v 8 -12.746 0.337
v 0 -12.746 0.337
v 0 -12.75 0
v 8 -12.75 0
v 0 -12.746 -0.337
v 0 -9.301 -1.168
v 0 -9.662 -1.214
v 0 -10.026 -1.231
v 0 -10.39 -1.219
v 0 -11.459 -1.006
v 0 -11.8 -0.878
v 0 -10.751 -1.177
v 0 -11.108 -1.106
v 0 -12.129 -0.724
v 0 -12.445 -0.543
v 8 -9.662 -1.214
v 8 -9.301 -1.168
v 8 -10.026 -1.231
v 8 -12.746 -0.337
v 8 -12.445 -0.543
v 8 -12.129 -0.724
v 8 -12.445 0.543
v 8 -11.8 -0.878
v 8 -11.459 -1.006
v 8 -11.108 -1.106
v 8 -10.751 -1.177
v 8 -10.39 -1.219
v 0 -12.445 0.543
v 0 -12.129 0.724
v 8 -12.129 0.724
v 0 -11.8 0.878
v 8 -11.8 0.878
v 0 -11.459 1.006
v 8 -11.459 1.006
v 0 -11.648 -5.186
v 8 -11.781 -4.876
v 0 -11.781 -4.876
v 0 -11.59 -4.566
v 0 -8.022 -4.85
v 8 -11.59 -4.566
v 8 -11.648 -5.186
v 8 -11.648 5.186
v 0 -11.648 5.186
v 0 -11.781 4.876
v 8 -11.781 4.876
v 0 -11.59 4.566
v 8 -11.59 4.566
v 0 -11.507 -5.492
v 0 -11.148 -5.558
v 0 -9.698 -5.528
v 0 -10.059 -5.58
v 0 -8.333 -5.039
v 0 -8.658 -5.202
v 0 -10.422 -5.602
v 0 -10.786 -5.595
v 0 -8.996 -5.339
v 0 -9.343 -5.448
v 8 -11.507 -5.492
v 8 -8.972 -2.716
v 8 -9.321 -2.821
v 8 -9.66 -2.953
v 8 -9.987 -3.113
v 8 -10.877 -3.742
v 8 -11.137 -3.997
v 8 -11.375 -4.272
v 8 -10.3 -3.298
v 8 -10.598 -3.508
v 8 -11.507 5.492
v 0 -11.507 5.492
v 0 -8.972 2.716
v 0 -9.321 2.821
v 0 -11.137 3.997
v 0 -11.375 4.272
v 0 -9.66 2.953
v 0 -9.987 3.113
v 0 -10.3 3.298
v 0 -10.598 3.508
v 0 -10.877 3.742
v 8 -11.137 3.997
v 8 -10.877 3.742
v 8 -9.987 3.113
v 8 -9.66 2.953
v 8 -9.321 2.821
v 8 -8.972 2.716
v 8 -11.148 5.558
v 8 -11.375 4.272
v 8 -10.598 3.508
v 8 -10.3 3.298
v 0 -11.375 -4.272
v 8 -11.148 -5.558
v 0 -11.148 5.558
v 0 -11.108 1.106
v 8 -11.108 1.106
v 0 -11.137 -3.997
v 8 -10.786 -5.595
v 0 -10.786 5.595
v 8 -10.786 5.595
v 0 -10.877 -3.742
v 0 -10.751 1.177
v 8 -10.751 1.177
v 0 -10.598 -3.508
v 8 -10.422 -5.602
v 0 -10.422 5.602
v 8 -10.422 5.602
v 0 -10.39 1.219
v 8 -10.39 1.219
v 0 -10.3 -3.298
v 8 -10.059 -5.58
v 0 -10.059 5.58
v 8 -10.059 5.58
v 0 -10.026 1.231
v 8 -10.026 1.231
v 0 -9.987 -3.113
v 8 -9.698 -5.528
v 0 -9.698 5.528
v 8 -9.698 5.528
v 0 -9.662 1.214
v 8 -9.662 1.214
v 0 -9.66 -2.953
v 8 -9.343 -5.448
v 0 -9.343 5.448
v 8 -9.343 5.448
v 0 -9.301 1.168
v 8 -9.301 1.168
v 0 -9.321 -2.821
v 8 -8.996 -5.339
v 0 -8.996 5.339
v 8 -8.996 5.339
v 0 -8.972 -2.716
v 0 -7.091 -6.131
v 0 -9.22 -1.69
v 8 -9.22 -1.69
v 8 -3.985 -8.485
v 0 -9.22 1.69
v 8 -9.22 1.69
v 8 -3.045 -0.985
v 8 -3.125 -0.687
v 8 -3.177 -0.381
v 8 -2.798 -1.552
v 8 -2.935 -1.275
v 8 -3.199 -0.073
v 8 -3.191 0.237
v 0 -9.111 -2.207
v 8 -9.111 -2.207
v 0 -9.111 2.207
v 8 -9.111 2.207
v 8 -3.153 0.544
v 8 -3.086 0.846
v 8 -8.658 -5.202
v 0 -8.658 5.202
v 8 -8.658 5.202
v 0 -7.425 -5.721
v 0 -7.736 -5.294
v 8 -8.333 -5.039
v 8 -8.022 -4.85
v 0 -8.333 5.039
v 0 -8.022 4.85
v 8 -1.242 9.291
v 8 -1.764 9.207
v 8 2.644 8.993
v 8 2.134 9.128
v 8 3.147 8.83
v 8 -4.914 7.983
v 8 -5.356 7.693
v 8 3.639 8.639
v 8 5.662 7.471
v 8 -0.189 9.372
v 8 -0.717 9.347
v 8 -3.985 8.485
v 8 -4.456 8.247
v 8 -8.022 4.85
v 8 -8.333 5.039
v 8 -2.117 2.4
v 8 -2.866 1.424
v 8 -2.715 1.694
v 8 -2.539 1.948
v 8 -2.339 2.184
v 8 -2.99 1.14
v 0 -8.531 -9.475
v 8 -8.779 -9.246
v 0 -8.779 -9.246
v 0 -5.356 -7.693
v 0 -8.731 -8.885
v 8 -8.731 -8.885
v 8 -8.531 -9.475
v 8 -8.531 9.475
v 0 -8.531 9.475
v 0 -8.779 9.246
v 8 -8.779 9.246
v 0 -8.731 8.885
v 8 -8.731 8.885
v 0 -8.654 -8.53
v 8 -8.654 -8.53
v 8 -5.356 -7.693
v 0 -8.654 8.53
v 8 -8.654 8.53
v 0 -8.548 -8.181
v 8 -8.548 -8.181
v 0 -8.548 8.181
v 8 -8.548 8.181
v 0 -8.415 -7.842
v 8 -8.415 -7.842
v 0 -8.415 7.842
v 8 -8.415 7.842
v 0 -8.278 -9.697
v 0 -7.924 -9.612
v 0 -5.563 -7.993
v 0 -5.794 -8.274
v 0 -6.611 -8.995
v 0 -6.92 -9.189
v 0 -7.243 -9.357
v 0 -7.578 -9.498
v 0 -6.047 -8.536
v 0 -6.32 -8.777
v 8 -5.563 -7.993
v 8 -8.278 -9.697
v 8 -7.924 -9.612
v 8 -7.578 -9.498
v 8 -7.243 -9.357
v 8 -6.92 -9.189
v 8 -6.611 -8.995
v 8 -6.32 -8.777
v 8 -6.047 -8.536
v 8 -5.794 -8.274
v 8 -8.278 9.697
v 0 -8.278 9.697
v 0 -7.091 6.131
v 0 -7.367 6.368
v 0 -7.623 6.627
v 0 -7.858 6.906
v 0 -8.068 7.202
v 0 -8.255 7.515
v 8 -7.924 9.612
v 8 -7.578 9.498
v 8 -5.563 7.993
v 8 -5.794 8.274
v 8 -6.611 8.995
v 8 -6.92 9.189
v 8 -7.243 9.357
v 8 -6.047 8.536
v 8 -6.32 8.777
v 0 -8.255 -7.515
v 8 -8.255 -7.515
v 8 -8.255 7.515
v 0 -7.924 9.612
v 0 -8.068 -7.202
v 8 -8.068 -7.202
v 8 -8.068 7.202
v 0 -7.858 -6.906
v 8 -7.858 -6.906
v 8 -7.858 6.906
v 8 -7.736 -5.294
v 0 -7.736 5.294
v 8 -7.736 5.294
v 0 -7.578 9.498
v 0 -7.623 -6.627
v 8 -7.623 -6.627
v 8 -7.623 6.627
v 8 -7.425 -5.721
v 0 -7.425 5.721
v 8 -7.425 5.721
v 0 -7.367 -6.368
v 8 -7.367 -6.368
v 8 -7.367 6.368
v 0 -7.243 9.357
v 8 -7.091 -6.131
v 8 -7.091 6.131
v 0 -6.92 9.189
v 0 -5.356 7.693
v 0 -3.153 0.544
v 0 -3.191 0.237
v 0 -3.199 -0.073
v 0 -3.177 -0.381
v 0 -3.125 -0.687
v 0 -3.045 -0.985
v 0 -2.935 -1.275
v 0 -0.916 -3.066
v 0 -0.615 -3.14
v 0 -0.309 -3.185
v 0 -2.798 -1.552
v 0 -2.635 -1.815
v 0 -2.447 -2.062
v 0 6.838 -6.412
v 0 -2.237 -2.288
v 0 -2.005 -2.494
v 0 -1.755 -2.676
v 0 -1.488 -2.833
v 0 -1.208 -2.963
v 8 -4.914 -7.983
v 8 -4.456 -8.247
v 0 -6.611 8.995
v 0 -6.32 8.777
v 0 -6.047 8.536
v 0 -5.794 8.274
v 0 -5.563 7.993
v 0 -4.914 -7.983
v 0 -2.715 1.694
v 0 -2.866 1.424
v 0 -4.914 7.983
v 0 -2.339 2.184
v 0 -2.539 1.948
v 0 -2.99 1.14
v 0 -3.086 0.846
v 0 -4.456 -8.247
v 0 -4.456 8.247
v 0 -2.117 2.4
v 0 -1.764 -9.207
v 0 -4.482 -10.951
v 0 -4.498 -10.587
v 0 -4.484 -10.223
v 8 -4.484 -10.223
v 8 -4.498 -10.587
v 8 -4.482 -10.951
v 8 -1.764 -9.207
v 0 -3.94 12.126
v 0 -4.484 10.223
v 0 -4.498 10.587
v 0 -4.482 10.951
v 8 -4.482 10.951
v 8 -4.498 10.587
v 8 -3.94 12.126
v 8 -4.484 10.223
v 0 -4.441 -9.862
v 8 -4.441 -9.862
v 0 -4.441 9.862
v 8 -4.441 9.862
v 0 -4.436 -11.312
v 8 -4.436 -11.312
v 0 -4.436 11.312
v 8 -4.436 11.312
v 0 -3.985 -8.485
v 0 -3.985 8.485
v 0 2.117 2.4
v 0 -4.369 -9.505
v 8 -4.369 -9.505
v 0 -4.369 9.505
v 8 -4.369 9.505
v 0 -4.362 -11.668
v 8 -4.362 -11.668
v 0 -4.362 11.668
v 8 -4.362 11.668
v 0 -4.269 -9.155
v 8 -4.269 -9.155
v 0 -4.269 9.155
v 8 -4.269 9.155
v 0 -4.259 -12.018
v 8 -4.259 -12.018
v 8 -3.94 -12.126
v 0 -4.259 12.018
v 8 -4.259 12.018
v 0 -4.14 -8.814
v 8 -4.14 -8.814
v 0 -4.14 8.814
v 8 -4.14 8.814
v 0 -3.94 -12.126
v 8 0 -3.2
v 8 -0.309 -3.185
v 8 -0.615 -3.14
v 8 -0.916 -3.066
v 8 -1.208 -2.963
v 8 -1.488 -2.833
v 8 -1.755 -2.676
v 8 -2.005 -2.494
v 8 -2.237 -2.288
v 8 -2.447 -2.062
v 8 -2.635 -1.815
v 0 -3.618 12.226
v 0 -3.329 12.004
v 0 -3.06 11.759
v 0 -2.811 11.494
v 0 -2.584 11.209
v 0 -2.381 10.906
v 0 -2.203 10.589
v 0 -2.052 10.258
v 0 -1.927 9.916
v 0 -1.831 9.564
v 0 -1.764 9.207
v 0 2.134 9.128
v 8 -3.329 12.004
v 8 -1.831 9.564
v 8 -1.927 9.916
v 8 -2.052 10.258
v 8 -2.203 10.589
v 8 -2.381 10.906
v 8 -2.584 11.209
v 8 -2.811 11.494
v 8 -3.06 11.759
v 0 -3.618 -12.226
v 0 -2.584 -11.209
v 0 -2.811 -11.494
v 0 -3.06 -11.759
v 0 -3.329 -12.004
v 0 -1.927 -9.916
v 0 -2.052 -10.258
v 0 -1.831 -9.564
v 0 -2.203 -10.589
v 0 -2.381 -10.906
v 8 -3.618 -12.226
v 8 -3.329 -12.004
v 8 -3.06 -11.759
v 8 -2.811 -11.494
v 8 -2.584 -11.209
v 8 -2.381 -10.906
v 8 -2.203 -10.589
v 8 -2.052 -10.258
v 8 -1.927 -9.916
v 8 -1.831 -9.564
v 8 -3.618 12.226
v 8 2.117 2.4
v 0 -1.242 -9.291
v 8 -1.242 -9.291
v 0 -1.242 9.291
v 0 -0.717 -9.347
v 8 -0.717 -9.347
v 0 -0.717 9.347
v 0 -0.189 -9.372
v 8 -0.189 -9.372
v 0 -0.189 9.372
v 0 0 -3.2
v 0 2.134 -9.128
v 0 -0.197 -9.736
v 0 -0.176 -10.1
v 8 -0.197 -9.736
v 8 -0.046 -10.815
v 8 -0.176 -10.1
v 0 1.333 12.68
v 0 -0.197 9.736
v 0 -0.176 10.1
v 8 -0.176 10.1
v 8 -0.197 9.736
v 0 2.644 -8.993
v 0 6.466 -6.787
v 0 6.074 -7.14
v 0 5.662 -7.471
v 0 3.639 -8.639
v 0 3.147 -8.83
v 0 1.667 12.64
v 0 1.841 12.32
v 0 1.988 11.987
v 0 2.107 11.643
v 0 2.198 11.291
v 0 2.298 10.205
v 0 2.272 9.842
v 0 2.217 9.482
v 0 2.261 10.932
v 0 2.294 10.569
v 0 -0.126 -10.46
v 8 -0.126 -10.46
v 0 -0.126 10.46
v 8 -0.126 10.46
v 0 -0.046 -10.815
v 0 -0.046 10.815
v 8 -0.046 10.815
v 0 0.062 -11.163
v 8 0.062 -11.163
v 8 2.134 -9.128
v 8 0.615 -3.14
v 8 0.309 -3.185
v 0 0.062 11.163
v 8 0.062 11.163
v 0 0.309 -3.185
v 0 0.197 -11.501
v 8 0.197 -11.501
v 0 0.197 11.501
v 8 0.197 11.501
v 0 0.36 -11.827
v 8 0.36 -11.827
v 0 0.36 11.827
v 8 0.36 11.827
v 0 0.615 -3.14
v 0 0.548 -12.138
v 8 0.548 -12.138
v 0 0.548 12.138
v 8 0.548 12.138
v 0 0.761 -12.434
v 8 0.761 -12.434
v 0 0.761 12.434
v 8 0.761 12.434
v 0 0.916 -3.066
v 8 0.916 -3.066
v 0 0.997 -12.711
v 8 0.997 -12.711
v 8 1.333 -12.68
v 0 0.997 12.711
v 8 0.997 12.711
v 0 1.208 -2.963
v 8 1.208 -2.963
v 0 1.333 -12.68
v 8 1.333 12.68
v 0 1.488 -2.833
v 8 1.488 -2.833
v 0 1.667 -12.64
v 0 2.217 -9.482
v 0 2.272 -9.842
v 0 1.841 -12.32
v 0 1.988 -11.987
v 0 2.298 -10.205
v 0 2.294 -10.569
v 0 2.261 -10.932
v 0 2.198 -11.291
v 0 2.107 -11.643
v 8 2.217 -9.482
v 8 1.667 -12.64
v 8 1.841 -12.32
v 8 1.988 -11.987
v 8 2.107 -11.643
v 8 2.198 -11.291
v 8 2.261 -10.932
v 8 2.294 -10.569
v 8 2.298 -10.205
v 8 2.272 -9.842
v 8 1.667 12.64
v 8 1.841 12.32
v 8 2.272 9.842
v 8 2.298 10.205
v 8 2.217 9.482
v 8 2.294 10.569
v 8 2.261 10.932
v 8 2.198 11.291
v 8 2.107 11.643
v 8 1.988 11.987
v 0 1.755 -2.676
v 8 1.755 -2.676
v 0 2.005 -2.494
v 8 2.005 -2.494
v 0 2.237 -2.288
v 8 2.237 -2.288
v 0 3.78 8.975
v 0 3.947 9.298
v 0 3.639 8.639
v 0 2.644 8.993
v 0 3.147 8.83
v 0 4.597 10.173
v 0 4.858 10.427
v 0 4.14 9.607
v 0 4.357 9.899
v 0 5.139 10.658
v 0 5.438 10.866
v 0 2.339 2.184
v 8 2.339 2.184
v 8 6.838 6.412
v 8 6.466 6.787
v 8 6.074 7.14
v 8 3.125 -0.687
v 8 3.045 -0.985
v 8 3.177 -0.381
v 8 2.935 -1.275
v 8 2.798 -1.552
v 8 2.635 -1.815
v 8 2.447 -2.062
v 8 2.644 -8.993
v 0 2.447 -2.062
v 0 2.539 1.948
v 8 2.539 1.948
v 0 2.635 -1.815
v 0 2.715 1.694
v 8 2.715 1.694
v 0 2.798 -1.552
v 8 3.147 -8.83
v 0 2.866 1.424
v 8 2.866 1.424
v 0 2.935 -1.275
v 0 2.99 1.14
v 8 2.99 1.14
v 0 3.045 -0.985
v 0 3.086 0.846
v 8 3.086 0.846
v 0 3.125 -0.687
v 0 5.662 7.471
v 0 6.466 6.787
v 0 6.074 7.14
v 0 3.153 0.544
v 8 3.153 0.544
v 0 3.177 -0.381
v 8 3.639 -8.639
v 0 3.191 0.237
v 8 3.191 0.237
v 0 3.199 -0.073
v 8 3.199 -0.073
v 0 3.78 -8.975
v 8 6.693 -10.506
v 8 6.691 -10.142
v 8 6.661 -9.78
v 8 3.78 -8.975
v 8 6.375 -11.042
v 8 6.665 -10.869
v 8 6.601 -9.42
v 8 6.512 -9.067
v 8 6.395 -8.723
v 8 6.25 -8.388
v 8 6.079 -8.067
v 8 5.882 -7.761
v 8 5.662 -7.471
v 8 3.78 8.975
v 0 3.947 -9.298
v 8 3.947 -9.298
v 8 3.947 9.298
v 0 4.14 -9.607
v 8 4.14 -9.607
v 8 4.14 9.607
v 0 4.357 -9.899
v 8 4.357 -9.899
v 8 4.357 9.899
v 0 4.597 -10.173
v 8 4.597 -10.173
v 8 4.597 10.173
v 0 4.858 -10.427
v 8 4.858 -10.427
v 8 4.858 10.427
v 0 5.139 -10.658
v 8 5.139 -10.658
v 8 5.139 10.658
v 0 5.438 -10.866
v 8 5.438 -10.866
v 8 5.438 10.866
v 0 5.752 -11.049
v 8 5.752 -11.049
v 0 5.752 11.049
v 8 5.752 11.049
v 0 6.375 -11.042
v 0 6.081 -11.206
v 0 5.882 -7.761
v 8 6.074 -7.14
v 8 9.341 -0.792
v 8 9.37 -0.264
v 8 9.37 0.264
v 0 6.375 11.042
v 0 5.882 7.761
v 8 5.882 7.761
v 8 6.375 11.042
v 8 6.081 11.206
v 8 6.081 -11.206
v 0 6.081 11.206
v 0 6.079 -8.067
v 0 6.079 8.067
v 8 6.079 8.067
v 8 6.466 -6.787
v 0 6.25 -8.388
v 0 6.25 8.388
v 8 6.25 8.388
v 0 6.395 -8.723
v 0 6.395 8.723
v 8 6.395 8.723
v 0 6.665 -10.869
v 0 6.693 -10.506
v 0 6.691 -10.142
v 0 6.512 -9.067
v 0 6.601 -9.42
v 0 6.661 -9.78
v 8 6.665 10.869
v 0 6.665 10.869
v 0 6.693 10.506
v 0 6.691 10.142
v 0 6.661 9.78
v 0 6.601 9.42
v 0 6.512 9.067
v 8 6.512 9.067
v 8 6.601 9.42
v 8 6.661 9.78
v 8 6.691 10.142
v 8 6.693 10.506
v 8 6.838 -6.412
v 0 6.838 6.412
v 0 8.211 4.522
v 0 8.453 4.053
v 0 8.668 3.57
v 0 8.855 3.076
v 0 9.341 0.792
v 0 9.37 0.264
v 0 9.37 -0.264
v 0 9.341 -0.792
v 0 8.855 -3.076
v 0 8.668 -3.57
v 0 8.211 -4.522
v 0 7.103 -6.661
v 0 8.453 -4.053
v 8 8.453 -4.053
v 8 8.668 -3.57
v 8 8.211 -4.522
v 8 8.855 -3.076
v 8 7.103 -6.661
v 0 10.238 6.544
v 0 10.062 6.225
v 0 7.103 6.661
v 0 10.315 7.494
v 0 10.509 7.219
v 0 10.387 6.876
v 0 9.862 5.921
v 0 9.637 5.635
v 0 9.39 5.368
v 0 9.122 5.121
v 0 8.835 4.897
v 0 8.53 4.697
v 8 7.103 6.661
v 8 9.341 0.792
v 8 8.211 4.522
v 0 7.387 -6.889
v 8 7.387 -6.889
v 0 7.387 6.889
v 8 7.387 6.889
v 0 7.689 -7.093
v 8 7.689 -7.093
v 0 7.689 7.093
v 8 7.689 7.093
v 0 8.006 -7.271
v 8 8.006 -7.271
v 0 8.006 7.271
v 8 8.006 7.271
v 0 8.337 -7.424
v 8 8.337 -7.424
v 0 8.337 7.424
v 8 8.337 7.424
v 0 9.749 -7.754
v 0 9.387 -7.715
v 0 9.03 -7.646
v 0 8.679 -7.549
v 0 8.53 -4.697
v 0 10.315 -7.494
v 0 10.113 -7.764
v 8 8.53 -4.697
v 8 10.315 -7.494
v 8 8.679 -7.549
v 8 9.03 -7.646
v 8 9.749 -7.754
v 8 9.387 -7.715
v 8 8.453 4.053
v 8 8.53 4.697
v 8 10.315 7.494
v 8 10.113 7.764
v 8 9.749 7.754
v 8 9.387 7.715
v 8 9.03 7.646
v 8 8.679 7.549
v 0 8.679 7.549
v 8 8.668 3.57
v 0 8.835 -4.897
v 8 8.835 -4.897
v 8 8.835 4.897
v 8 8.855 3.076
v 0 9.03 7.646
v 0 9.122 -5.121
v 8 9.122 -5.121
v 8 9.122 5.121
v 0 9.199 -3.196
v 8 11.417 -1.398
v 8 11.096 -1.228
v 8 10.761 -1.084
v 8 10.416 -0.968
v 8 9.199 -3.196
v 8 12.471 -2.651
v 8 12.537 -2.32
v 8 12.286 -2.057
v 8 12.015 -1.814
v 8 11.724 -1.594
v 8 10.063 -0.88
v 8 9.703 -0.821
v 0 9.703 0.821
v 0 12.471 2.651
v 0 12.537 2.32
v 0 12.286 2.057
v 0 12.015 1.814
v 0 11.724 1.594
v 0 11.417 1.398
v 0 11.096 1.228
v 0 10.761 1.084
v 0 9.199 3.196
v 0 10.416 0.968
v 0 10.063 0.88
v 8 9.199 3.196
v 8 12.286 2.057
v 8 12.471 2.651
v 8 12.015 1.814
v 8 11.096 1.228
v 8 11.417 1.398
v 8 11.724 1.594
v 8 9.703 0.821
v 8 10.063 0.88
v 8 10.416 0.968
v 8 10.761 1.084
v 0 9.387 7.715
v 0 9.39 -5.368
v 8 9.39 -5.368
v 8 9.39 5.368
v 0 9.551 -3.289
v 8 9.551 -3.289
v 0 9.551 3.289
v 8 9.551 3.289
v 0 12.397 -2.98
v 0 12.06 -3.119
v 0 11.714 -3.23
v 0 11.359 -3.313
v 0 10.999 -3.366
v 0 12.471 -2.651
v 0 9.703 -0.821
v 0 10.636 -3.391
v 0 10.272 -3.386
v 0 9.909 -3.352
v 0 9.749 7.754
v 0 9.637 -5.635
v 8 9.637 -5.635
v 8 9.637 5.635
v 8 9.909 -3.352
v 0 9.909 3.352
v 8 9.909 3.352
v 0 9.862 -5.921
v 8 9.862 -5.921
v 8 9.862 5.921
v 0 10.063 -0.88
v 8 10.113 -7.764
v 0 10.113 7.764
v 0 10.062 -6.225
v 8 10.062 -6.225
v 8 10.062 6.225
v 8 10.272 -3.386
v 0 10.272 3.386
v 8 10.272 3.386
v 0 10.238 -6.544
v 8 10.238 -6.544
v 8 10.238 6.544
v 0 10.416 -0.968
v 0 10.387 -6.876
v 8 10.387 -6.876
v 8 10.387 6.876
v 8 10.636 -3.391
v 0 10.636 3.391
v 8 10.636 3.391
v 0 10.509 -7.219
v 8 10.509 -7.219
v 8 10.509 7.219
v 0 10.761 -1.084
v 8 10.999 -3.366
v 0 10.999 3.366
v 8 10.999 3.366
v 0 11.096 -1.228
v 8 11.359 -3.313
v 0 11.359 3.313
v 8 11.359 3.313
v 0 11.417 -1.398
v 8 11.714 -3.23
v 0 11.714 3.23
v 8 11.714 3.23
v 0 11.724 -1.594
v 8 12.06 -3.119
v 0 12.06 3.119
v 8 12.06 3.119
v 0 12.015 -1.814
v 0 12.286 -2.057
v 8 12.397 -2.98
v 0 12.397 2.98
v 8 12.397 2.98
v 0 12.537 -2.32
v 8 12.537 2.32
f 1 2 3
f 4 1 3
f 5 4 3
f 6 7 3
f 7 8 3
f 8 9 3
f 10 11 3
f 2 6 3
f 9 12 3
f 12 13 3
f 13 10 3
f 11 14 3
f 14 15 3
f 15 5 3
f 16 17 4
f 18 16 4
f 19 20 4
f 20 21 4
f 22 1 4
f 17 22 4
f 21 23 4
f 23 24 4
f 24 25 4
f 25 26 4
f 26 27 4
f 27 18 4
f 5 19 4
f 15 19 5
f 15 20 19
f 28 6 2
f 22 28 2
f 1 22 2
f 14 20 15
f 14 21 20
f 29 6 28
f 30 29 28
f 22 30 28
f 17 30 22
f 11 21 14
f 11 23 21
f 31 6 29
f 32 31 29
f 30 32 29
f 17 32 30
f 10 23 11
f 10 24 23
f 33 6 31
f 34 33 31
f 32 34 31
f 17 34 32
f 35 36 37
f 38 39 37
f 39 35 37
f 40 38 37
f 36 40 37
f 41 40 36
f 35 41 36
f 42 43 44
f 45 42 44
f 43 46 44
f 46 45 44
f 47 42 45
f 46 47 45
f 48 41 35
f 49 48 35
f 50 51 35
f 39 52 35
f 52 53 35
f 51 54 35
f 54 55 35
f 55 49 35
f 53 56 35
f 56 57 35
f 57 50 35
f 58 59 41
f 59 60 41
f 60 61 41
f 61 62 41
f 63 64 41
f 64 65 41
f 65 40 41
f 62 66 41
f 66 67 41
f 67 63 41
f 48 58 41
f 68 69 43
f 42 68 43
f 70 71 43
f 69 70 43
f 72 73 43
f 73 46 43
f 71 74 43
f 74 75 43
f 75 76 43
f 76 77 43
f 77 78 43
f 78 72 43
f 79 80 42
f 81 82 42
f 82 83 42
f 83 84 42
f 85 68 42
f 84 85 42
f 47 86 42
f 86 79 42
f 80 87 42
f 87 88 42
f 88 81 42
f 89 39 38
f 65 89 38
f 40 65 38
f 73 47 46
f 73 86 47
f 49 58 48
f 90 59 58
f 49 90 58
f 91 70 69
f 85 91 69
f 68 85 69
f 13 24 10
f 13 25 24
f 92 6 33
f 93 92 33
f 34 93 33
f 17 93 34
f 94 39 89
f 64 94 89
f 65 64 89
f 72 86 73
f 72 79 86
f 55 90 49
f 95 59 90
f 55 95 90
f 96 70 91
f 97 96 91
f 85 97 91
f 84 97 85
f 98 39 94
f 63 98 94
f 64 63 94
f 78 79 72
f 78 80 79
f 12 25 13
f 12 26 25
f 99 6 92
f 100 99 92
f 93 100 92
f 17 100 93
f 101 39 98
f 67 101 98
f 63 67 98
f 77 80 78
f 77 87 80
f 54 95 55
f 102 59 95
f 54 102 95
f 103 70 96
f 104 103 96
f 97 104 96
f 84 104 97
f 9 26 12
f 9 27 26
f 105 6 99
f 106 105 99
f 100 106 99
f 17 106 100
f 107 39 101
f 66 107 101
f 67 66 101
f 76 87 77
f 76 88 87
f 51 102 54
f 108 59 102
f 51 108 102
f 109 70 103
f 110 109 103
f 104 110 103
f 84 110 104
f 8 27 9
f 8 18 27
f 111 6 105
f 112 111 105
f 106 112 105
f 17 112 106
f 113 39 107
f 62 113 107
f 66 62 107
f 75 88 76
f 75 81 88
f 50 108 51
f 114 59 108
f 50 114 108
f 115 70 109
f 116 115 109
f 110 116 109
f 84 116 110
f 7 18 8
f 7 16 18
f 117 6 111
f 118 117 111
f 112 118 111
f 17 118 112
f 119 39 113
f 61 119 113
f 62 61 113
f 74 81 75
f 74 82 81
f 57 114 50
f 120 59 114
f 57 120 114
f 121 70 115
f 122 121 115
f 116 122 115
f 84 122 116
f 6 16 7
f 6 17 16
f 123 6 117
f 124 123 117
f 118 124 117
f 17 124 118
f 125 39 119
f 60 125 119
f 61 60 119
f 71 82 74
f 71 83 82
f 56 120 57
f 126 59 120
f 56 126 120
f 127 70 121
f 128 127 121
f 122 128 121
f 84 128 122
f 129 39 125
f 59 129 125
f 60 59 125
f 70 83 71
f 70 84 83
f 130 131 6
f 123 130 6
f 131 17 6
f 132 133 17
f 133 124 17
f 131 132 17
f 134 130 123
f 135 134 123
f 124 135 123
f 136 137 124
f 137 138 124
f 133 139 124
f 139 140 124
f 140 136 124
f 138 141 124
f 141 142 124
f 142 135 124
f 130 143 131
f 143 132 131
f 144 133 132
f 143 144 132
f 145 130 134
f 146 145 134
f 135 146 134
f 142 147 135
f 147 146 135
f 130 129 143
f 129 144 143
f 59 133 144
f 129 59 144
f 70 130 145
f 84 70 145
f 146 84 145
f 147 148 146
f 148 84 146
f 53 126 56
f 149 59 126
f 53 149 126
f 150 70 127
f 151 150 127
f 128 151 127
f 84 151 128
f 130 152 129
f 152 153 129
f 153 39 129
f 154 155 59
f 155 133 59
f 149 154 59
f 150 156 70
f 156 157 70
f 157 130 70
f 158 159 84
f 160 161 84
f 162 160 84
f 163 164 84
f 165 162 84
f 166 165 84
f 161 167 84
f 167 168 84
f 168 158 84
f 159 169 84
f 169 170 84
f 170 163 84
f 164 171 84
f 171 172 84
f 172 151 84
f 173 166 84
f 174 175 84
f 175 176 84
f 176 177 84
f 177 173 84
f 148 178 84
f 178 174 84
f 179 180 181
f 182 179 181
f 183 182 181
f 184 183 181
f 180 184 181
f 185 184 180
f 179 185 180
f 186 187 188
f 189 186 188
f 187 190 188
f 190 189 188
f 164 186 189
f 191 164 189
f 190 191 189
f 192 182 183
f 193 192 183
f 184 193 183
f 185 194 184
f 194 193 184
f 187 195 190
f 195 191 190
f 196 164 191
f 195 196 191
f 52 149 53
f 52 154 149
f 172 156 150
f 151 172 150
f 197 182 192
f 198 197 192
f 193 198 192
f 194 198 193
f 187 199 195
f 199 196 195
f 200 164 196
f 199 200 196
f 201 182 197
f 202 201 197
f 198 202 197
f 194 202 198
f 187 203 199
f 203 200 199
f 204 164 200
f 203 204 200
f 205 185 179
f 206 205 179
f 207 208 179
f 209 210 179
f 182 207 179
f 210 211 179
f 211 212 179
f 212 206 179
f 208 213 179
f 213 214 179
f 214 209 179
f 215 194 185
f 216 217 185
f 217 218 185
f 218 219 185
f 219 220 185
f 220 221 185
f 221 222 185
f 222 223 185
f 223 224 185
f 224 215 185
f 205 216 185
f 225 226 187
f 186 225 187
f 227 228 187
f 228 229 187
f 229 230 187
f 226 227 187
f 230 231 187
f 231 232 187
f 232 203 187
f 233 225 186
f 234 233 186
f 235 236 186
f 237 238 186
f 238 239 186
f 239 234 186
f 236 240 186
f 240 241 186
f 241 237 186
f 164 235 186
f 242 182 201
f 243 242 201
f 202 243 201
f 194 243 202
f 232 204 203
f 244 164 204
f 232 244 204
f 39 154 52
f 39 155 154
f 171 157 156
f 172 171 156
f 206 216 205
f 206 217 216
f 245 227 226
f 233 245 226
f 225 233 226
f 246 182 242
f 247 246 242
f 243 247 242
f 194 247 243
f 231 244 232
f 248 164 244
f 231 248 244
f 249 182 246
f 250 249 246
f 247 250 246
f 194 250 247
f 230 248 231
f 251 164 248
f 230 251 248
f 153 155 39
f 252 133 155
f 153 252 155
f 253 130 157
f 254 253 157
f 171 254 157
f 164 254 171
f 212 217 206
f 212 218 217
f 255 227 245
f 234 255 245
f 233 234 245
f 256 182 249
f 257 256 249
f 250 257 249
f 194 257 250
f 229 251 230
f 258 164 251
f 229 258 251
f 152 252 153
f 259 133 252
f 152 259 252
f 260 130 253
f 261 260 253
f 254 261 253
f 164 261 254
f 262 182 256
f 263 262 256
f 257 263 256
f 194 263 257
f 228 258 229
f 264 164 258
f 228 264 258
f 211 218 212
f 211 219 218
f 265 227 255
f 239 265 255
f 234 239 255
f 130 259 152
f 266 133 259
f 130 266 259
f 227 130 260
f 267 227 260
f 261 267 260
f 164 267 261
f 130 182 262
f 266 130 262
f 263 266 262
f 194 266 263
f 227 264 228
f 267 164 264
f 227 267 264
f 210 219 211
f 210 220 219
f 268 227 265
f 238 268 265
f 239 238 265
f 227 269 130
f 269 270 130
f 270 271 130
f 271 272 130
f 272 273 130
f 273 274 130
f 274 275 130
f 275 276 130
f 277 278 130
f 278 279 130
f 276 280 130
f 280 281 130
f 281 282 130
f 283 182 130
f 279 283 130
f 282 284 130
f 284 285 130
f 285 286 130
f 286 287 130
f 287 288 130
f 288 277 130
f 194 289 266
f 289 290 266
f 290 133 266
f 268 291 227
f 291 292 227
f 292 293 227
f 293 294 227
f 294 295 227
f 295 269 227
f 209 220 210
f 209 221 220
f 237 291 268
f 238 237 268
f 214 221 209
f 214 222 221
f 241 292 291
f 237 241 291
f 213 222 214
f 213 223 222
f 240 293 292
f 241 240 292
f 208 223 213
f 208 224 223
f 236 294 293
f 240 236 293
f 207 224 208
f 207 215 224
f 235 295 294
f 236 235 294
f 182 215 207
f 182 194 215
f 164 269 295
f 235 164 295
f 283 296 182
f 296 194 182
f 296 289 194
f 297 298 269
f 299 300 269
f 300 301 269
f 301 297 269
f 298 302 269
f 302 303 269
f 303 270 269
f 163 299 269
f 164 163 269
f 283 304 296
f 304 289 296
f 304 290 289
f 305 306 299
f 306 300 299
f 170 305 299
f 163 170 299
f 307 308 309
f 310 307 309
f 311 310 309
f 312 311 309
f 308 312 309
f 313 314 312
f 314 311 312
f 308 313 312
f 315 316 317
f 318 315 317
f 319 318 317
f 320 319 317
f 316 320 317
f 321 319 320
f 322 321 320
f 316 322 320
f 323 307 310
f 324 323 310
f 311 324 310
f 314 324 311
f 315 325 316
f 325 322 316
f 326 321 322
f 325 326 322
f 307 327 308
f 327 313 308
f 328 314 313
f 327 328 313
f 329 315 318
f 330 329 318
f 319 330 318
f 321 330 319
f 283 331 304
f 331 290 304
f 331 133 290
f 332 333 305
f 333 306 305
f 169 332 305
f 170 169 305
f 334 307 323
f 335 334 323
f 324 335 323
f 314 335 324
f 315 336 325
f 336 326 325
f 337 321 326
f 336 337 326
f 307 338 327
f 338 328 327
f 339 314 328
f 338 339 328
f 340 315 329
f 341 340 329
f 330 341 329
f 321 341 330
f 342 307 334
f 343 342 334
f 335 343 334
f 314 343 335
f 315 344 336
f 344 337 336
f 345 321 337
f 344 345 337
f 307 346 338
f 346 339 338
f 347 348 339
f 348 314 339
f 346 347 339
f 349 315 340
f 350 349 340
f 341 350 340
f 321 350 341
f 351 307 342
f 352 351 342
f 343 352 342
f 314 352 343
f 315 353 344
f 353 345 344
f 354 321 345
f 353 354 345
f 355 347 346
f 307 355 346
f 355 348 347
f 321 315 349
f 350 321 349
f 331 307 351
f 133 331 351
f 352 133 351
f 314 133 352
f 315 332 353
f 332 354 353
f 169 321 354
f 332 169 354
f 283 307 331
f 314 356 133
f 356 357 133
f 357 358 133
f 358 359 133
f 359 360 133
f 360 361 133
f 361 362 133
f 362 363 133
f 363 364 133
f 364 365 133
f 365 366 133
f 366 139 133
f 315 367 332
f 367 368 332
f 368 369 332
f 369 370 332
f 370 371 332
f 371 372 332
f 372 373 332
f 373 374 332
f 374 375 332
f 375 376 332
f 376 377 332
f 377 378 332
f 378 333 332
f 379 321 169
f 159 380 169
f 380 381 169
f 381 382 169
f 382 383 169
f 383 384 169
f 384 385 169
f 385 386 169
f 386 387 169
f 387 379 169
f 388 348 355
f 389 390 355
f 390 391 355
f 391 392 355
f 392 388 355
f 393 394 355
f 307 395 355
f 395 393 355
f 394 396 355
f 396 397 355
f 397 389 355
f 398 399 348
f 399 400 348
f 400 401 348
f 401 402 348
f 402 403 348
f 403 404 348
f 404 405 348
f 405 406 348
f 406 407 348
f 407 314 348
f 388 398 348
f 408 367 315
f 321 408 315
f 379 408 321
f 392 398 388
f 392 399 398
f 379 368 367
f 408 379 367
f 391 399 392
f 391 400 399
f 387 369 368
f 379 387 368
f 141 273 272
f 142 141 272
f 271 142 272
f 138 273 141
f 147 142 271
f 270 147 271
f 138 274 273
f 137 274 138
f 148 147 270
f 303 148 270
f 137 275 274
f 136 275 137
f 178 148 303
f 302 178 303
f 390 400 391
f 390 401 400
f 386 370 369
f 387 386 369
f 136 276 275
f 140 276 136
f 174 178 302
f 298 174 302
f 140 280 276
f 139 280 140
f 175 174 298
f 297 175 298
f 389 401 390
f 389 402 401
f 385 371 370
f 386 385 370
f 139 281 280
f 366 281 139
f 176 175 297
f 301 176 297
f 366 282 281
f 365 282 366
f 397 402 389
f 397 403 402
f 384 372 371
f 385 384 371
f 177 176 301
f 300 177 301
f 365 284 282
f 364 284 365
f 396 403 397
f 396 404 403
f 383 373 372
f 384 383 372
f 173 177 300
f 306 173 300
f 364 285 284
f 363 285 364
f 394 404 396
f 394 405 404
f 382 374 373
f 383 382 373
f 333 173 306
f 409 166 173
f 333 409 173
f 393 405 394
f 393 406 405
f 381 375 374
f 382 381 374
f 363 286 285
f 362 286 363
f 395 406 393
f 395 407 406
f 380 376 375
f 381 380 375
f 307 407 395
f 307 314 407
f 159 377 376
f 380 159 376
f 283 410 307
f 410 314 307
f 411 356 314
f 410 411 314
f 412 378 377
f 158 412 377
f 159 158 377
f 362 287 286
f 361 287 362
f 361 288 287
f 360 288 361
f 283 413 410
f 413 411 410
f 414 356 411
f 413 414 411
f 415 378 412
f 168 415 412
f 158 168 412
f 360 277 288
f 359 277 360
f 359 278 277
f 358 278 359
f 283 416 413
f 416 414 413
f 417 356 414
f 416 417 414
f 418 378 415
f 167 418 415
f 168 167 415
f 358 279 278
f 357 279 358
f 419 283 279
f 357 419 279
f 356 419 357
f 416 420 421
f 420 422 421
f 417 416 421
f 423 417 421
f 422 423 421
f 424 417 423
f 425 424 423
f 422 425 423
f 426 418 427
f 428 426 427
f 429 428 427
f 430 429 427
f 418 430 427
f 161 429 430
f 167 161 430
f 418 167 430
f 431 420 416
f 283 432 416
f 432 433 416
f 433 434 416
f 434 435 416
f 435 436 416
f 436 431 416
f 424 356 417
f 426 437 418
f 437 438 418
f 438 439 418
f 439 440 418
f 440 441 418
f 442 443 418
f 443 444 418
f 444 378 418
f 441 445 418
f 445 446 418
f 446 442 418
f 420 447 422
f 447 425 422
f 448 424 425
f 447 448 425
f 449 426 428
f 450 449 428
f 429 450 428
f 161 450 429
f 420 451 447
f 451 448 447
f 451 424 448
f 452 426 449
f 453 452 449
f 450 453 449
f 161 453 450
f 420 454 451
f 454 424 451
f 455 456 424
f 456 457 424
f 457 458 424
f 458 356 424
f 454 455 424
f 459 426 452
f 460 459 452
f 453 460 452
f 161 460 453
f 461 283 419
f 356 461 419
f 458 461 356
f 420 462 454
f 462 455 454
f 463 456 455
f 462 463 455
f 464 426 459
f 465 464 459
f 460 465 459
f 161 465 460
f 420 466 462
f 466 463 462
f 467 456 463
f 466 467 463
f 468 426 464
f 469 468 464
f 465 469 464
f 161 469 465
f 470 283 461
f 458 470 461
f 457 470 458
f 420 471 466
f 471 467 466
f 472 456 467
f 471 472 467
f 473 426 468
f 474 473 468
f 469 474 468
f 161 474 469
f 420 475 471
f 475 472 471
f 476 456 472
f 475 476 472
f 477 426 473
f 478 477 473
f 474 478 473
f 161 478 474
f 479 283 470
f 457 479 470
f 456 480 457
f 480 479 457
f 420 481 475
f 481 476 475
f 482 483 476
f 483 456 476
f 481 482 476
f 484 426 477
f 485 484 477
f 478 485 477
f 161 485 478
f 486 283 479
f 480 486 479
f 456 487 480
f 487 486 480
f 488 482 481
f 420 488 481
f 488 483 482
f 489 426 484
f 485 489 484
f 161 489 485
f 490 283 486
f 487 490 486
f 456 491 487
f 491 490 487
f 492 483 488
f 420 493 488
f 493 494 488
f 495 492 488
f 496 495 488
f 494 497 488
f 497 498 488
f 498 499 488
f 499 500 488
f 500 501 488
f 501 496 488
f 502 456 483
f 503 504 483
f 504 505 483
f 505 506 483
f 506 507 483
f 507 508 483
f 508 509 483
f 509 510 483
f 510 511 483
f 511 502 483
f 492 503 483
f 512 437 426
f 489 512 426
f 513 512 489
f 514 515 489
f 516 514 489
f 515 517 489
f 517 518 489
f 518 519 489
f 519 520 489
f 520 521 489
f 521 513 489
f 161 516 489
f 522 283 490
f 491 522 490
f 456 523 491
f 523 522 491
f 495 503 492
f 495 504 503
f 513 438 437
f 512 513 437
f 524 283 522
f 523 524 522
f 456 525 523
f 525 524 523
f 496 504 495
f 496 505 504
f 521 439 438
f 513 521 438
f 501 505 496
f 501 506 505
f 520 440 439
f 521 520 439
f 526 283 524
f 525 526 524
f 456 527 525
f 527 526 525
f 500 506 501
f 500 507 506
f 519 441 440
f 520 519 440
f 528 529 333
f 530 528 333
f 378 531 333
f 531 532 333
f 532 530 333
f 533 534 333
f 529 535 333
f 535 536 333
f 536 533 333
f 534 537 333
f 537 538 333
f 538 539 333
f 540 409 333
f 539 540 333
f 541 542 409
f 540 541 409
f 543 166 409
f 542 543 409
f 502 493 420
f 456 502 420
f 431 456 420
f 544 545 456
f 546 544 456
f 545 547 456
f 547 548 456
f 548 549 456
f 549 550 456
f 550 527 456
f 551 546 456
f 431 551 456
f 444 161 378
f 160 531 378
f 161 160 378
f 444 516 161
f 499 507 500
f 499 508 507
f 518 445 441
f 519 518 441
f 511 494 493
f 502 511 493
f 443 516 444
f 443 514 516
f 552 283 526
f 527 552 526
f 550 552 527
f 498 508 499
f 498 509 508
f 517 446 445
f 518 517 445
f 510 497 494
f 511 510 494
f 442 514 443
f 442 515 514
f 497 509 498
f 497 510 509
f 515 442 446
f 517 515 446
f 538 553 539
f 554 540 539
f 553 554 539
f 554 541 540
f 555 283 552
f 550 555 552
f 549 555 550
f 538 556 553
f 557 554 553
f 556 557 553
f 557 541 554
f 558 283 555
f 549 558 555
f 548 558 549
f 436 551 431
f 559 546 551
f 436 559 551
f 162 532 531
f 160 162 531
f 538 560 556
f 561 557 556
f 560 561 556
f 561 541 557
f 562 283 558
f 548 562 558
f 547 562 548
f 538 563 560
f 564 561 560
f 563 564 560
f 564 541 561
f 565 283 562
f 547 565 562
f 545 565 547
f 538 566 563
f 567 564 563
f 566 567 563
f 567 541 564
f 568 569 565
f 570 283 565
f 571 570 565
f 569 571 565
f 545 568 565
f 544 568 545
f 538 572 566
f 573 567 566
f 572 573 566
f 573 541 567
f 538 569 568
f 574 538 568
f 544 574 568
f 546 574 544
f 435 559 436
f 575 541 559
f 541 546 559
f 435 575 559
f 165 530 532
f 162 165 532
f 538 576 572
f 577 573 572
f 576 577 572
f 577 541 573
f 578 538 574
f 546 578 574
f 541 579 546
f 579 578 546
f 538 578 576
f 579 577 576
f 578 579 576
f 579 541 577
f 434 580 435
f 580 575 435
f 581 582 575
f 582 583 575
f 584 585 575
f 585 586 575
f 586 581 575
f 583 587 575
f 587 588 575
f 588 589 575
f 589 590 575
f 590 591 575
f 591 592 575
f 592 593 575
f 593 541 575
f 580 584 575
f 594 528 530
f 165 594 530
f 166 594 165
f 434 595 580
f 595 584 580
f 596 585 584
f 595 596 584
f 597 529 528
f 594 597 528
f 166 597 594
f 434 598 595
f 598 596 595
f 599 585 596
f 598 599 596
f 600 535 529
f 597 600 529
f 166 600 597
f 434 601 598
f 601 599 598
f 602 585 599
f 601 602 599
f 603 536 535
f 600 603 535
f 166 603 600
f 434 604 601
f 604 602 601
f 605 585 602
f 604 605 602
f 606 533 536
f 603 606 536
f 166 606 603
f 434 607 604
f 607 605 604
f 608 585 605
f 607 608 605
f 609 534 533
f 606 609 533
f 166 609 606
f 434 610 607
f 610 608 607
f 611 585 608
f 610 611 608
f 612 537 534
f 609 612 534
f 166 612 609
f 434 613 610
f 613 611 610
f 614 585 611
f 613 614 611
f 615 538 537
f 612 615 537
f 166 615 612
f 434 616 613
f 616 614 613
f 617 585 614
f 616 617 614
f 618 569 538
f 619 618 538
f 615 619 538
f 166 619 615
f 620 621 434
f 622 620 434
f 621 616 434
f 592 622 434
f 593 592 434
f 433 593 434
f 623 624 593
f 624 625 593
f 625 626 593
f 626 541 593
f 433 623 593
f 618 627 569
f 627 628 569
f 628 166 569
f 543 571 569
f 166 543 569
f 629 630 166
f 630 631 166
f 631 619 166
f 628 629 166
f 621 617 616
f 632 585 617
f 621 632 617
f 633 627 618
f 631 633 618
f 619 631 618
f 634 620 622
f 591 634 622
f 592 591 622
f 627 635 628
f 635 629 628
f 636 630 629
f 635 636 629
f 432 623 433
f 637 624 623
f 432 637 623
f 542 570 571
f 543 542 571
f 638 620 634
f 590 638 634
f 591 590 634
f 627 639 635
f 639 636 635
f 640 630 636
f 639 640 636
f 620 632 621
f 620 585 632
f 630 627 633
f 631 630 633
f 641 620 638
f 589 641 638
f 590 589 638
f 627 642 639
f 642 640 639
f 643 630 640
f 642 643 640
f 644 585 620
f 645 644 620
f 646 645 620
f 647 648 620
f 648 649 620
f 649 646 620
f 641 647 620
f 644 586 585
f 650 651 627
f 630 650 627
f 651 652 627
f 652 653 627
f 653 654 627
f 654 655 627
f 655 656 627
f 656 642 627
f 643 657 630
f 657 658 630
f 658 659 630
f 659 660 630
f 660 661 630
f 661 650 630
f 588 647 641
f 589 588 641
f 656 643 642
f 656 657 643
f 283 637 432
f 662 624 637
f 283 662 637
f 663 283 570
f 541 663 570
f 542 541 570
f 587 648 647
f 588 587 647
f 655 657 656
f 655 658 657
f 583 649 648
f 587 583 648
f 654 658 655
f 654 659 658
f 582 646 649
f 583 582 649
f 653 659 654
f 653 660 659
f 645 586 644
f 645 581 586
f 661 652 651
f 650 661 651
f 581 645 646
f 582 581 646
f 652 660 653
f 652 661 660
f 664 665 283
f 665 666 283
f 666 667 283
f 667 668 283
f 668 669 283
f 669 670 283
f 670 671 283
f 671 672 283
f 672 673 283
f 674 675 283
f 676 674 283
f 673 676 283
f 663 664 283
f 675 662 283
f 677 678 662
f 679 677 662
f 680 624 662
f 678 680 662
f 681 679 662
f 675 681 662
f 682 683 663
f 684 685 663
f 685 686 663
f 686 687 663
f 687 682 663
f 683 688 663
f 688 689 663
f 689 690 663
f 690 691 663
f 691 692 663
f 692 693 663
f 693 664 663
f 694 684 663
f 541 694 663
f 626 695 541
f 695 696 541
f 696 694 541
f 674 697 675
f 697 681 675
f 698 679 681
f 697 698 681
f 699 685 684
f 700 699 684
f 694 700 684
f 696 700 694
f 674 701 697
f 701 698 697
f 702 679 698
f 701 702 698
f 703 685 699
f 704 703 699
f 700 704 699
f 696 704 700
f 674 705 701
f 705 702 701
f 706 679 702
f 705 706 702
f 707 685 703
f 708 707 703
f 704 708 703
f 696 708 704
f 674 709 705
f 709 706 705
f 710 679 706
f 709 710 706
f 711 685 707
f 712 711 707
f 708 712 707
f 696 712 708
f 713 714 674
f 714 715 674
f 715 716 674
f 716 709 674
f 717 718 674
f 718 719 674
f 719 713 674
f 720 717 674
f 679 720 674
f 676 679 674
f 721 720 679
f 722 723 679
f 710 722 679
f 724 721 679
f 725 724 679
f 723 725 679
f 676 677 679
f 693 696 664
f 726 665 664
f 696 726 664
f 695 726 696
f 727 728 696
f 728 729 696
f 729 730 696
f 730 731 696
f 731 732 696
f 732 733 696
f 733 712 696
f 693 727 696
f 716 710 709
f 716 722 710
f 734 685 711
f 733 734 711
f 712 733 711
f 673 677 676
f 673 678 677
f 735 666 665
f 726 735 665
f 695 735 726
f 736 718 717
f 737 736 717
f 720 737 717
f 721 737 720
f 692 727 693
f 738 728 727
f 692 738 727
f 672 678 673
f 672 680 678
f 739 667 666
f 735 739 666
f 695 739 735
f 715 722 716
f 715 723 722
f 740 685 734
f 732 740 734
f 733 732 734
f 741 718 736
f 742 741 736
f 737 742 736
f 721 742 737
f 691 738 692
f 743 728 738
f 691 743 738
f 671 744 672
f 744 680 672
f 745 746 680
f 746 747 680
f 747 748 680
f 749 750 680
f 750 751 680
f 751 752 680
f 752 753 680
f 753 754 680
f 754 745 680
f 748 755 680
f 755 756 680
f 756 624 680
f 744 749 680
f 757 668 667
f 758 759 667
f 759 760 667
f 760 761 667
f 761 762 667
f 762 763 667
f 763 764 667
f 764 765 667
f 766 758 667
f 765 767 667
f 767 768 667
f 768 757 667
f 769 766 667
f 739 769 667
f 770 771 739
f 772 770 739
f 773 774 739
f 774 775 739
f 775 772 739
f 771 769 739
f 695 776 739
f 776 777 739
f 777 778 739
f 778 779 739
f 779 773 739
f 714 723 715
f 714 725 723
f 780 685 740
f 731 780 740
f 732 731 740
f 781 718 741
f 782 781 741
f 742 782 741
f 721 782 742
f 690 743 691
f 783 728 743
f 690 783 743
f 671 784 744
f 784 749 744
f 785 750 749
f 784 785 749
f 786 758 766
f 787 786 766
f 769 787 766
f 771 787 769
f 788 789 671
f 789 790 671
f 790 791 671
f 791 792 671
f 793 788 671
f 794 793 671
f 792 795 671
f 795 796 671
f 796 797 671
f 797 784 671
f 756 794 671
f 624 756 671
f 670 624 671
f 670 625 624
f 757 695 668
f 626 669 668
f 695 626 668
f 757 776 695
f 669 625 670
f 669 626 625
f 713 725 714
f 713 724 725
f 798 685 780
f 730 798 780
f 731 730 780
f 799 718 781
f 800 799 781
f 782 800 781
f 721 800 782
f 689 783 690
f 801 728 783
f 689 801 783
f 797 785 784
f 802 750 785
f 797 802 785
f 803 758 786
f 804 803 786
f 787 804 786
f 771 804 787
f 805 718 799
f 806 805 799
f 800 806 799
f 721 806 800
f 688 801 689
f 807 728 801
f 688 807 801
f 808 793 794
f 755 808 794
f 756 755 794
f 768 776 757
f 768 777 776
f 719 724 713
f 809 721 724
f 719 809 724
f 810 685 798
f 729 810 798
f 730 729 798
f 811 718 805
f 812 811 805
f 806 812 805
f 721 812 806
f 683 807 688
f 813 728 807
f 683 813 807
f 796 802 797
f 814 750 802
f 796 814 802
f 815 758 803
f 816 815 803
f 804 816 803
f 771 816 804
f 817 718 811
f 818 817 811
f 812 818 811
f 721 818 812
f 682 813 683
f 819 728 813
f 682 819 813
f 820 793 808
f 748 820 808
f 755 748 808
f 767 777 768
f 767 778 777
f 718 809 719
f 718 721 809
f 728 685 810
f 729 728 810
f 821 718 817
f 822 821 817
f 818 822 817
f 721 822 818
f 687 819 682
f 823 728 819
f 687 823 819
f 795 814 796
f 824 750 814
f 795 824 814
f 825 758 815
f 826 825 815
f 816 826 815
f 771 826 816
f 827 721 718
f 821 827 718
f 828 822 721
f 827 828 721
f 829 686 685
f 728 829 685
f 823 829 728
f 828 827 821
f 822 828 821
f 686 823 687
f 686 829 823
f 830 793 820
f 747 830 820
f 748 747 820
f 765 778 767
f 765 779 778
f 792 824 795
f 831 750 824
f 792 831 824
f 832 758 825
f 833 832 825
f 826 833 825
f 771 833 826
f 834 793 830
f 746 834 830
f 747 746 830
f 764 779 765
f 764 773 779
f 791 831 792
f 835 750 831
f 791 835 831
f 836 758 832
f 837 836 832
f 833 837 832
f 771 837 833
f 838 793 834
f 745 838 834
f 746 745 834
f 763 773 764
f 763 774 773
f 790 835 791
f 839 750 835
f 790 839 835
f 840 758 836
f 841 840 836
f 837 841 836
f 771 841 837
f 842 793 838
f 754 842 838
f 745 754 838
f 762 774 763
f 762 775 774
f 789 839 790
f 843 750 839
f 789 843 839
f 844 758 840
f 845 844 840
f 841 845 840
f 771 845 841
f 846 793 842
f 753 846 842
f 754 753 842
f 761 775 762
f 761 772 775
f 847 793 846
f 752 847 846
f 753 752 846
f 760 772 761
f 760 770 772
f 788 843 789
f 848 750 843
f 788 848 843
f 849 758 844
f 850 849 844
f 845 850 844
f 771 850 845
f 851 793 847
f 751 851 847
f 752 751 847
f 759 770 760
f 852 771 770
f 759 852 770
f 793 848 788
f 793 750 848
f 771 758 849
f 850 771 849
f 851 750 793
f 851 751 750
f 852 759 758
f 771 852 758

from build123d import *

# Parameters (mm, degrees)
BASPROSKE_W         = 8
BASPROSKE_H         = 12.75
TOOTHCUT_DEPTH      = 20.726251545
TEETHCUTS_COUNT     = 15
TEETHCUTS_ANGLE     = 336
BORSKE_R            = 3
BORE_DEPTH          = 50.0000508
SKETCH2_R           = 3.2
CUT_EXTRUDE1_DEPTH  = 20.701035813
BOSS_EXTRUDE1_DEPTH = 8


with BuildPart() as part:
    # BasProSke → Base-Revolve (revolve)
    with BuildSketch(Plane(origin=(0, 0, 0), x_dir=(1, 0, 0), z_dir=(0, 1, 0)), mode=Mode.PRIVATE) as base_revolve_sk:
        with Locations((4, 6.375)):
            Rectangle(BASPROSKE_W, BASPROSKE_H)
    revolve(base_revolve_sk.sketch.rotate(Axis((-10, 0, 0), (1, 0, 0)), 180), axis=Axis((-10, 0, 0), (1, 0, 0)))

    # TooCutSke → ToothCut (cut, through all)
    with BuildSketch(Plane(origin=(0, 0, 0), x_dir=(0, 0, -1), z_dir=(1, 0, 0))):
        with BuildLine():
            ThreePointArc((0.791546546, 9.340520867), (0, 9.374), (-0.791546546, 9.340520867))
            ThreePointArc((-0.791546546, 9.340520867), (-1.235070734, 11.110218102), (-2.344732916, 12.558386549))
            ThreePointArc((-2.344732916, 12.558386549), (0, 12.7754), (2.344732916, 12.558386549))
            ThreePointArc((2.344732916, 12.558386549), (1.235070734, 11.110218102), (0.791546546, 9.340520867))
        make_face()
    toothcut = extrude(amount=TOOTHCUT_DEPTH, mode=Mode.SUBTRACT)

    # TeethCuts: ToothCut ×15 about axis
    teethcuts_axis = Axis((-10, 0, 0), (1, 0, 0))
    for i in range(1, TEETHCUTS_COUNT):
        add(toothcut.rotate(teethcuts_axis, i * TEETHCUTS_ANGLE / (TEETHCUTS_COUNT - 1)), mode=Mode.SUBTRACT)

    # BorSke → Bore (cut, symmetric)
    with BuildSketch(Plane(origin=(0, 0, 0), x_dir=(0, 0, -1), z_dir=(1, 0, 0))):
        with Locations(Location((0, 0, 0), (0, 0, 180))):
            Circle(BORSKE_R)
    extrude(amount=BORE_DEPTH, both=True, mode=Mode.SUBTRACT)

    # Sketch2 → Cut-Extrude1 (cut, through all)
    with BuildSketch(Plane.ZY):
        Circle(SKETCH2_R)
    extrude(amount=-CUT_EXTRUDE1_DEPTH, mode=Mode.SUBTRACT)

    # Sketch3 → Boss-Extrude1 (add)
    with BuildSketch(Plane.ZY):
        with BuildLine():
            Line((2.4, 2.116601049), (2.4, -2.116601049))
            ThreePointArc((2.4, -2.116601049), (3.2, 0), (2.4, 2.116601049))
        make_face()
    extrude(amount=-BOSS_EXTRUDE1_DEPTH)


solid = part.part
